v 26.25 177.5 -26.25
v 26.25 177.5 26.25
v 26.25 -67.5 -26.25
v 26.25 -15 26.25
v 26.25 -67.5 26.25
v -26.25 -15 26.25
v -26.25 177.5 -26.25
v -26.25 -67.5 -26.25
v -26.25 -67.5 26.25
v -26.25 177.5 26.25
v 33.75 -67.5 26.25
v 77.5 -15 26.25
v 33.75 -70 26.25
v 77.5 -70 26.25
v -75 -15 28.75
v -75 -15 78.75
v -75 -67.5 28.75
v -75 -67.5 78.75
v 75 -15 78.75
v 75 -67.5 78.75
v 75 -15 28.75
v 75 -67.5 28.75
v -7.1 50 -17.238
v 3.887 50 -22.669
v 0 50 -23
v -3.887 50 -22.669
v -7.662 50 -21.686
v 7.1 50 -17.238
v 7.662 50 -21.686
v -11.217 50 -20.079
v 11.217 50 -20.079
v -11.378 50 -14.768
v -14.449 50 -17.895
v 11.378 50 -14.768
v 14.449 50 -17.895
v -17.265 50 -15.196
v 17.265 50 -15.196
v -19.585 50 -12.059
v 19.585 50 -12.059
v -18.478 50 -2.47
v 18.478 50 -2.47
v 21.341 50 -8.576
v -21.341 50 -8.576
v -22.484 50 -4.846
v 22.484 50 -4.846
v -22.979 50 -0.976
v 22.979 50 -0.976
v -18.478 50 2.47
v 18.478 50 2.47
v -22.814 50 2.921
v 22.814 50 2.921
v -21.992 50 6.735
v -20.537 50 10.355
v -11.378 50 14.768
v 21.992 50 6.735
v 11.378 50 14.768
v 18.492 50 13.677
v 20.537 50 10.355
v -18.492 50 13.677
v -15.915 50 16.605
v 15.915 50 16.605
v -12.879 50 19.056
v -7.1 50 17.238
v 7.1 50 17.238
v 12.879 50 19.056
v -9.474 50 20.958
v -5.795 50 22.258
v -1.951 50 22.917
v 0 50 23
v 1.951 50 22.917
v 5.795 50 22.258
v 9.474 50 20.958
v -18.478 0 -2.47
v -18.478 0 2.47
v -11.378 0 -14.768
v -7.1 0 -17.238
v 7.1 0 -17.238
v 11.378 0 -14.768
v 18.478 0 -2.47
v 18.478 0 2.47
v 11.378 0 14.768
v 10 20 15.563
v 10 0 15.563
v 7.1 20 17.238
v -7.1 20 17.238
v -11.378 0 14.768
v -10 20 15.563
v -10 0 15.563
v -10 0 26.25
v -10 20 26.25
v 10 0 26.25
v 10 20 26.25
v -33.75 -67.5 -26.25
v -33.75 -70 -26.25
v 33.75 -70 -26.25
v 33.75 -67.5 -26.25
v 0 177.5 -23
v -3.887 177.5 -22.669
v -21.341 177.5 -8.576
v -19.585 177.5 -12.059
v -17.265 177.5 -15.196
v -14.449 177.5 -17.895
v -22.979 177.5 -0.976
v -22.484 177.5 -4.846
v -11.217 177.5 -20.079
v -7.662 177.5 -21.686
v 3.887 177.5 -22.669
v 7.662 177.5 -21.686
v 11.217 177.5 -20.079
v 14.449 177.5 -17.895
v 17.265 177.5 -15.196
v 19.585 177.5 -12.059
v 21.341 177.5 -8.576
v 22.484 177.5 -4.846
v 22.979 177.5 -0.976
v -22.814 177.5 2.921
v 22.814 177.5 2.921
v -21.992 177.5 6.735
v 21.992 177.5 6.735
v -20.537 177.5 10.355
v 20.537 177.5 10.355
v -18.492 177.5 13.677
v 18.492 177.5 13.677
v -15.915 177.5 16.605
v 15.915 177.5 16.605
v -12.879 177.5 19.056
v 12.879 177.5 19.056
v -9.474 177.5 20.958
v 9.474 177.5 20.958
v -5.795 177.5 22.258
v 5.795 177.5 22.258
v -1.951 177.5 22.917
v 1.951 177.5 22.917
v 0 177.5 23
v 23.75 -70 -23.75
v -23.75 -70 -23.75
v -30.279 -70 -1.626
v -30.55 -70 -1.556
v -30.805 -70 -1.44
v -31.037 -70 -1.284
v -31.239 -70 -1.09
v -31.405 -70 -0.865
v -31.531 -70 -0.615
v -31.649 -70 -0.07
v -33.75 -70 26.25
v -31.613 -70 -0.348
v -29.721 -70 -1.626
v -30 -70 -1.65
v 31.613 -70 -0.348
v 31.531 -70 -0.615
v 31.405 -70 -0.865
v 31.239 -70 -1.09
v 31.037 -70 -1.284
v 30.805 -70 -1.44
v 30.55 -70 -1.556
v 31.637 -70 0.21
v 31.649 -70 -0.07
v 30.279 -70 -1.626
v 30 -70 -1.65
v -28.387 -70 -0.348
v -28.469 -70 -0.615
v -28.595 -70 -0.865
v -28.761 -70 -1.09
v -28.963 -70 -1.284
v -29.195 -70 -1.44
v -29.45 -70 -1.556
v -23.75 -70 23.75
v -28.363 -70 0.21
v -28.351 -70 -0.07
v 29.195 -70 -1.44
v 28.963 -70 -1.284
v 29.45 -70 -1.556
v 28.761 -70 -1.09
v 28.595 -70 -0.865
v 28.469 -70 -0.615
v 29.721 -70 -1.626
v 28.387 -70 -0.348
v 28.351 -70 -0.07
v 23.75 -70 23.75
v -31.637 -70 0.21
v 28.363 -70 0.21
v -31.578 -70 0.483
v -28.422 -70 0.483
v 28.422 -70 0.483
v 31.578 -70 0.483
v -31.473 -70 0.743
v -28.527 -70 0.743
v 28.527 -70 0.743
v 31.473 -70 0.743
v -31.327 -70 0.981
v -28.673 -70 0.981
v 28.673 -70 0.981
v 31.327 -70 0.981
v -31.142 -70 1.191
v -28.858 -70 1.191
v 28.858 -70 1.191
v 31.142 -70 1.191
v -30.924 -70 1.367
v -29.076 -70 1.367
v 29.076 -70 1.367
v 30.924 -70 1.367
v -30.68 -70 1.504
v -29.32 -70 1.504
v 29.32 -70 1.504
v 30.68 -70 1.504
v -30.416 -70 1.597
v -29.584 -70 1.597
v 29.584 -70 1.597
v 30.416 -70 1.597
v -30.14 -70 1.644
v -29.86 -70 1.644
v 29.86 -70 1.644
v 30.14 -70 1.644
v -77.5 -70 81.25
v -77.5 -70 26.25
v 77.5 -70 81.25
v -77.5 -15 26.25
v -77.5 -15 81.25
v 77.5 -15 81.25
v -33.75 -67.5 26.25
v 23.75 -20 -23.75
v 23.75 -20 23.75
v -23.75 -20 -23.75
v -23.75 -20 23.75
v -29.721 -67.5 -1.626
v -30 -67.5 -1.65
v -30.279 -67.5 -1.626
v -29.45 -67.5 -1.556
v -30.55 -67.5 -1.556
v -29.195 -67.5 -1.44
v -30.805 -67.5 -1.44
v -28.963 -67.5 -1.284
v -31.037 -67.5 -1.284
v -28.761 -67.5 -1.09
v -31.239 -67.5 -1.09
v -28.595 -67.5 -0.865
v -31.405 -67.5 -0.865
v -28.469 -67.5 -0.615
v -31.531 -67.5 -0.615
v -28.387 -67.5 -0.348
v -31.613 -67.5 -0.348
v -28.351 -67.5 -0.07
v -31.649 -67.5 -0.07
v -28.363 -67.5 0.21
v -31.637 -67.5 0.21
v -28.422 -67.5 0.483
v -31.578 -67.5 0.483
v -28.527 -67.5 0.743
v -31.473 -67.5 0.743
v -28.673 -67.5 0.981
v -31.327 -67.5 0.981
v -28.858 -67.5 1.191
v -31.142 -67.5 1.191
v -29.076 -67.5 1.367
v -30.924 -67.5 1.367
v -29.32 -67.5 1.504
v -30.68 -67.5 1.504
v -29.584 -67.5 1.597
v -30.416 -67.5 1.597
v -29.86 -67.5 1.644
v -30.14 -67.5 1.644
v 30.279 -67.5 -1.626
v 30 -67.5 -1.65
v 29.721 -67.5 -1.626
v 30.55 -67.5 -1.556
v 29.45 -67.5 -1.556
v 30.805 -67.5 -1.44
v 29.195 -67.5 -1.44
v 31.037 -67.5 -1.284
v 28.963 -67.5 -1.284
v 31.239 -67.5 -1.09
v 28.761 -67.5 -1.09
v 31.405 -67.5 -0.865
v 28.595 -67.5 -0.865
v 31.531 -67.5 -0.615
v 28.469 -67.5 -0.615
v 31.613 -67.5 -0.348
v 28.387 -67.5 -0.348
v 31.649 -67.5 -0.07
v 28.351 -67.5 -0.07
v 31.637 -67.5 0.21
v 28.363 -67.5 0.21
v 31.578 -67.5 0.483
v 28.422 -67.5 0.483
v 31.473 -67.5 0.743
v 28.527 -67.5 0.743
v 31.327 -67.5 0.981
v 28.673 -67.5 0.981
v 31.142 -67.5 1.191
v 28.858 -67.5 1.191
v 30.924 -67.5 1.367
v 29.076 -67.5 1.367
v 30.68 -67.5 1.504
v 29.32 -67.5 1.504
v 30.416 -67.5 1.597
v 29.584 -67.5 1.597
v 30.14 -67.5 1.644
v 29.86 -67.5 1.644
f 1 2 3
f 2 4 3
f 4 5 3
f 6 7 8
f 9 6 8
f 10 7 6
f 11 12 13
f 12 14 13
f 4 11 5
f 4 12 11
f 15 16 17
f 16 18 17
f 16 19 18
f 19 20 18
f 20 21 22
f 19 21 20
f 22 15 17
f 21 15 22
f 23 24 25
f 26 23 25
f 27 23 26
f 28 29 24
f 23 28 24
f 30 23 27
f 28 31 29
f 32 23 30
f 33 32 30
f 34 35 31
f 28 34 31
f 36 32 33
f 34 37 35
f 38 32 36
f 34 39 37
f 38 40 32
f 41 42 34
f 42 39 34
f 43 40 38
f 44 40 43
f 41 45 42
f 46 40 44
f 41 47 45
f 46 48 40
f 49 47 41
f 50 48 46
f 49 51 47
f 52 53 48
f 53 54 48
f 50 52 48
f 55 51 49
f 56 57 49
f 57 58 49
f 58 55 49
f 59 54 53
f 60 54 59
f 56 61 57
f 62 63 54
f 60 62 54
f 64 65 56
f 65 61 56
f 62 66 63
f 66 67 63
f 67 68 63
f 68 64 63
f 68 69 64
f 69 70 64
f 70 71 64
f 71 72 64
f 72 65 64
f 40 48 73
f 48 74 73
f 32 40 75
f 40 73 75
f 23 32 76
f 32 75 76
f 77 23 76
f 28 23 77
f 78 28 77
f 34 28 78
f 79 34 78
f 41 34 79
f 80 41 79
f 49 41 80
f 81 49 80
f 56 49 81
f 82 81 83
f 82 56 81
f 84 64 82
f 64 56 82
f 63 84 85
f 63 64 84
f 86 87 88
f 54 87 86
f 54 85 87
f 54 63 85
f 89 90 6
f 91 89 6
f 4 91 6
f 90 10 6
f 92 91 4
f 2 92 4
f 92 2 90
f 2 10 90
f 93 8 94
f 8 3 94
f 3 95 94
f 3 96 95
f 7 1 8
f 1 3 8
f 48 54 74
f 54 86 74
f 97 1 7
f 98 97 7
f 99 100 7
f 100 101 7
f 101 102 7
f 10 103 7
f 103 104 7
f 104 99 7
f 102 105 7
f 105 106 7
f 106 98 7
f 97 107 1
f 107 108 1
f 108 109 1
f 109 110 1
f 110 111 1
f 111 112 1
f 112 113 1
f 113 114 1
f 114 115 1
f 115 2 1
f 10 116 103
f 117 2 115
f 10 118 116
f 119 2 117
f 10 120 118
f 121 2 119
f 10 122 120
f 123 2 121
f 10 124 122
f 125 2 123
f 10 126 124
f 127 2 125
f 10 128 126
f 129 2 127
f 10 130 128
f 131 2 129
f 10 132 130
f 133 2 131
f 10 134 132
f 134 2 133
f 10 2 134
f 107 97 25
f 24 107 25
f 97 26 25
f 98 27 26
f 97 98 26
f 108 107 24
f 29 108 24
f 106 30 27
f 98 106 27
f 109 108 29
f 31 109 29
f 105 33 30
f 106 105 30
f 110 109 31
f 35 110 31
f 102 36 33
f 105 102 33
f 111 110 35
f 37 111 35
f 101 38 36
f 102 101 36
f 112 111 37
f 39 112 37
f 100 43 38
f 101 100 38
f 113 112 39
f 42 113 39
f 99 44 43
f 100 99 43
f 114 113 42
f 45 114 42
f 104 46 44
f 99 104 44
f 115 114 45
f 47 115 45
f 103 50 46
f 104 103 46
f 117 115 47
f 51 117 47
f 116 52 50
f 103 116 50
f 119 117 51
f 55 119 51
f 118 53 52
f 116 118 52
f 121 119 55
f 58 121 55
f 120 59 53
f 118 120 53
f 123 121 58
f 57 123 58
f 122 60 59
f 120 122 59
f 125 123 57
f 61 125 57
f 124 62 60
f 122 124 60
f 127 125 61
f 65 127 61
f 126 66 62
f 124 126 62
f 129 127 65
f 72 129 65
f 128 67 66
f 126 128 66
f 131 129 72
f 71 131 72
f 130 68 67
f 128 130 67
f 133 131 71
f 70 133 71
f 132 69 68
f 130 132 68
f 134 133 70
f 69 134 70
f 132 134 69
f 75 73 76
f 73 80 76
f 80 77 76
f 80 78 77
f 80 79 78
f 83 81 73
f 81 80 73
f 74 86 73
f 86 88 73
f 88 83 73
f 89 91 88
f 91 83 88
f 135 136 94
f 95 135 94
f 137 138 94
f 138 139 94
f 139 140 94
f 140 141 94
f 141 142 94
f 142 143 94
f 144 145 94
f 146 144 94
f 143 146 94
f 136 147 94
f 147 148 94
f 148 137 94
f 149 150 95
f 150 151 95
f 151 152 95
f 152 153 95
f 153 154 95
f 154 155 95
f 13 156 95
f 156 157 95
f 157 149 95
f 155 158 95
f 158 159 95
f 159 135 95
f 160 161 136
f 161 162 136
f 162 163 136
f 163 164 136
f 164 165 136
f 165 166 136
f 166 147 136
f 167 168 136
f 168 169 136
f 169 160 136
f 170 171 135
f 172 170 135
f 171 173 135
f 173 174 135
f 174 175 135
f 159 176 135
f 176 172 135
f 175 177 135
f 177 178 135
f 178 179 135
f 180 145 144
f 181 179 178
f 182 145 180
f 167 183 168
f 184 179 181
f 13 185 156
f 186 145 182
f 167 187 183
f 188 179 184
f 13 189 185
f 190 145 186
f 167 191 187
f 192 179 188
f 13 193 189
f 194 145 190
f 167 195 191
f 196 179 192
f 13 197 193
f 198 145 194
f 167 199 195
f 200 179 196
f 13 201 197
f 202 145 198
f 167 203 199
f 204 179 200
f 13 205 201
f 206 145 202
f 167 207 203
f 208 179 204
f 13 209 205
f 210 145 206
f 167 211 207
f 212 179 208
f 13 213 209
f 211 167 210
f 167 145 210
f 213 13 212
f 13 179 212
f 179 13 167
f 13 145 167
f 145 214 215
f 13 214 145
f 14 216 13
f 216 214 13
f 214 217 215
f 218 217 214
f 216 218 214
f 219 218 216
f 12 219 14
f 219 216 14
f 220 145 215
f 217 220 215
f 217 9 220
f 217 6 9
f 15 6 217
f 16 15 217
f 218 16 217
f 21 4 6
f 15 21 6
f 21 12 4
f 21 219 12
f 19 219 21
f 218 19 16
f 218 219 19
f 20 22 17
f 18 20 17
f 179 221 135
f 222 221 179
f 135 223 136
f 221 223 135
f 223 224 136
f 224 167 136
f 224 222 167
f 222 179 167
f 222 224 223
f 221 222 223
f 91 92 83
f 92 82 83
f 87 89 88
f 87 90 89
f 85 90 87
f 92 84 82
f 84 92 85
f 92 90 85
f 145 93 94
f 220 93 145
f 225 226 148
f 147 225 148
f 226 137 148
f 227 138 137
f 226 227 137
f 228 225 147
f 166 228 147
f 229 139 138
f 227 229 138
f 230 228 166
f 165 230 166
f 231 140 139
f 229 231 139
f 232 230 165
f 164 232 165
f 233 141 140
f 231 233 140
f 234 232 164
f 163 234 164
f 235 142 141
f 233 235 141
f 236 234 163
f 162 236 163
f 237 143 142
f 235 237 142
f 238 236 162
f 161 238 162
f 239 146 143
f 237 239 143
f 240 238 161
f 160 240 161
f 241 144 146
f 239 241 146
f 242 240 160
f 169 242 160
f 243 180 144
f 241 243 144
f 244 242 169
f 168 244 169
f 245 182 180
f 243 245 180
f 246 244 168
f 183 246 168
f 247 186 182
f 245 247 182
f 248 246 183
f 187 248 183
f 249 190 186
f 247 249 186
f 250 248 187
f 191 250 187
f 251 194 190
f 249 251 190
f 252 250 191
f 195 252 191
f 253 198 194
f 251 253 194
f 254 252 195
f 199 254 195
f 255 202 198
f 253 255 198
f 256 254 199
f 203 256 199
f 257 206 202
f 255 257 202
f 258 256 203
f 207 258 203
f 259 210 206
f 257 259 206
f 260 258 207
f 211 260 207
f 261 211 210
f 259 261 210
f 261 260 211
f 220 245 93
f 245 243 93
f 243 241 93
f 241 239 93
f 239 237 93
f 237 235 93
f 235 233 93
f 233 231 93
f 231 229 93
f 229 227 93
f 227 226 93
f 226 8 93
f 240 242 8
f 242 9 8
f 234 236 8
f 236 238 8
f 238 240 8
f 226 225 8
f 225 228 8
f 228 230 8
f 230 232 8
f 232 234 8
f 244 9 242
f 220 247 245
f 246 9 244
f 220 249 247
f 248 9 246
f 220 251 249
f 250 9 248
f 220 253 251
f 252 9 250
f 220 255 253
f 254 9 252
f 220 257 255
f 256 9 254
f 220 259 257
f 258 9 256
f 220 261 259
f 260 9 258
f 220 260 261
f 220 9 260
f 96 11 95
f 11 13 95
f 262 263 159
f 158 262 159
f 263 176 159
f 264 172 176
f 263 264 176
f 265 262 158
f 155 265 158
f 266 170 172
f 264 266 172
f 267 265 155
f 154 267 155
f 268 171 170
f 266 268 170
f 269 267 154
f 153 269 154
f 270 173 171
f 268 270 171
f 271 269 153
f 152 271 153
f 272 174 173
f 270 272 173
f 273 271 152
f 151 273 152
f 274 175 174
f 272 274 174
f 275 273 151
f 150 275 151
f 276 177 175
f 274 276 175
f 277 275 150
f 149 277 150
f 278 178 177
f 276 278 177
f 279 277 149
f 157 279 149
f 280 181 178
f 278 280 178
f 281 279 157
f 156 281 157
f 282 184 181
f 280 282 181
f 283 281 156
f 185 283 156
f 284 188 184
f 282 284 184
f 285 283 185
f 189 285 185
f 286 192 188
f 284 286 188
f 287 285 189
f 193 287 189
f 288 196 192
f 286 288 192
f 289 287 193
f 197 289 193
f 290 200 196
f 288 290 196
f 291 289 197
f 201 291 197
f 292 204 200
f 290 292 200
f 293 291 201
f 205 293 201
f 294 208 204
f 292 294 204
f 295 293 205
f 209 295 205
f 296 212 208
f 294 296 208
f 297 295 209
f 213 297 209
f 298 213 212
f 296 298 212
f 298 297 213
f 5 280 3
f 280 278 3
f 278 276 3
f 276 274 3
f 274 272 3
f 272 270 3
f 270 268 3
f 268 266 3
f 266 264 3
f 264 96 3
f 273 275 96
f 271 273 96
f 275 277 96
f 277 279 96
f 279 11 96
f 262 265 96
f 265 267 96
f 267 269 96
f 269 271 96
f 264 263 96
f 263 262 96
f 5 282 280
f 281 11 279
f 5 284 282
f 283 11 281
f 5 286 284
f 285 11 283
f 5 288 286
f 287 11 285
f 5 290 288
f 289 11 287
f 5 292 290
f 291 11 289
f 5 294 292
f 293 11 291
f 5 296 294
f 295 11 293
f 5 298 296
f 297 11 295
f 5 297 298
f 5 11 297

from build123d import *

# Parameters (mm, degrees)
BOSS_EXTRUDE1_DEPTH = 50
BOSS_EXTRUDE2_START = 50
SKETCH2_3_R         = 23
BOSS_EXTRUDE2_DEPTH = 127.5
BOSS_EXTRUDE3_DEPTH = 177.5
SKETCH3_W           = 52.5
SKETCH3_H           = 52.5
BOSS_EXTRUDE4_DEPTH = 70
SKETCH4_W           = 150
SKETCH4_H           = 50
BOSS_EXTRUDE5_DEPTH = 2.5
SKETCH4_4_W         = 155
SKETCH4_4_H         = 55
SKETCH4_4_W_2       = 150
SKETCH4_4_H_2       = 50
BOSS_EXTRUDE6_DEPTH = 55
SKETCH5_W           = 47.5
SKETCH5_H           = 47.5
CUT_EXTRUDE4_DEPTH  = 50
SKETCH6_W           = 20
SKETCH6_H           = 20
CUT_EXTRUDE5_DEPTH  = 20
SKETCH7_W           = 7.5
SKETCH7_H           = 52.5
SKETCH7_R           = 1.65
BOSS_EXTRUDE7_DEPTH = 2.5


with BuildPart() as part:
    # Sketch2 → Boss-Extrude1 (new body)
    with BuildSketch(Plane(origin=(0, 0, 0), x_dir=(1, 0, 0), z_dir=(0, 1, 0))):
        with BuildLine():
            ThreePointArc((-26.25, -11.459990061), (-20.253319138, -20.253319138), (-11.459990061, -26.25))
            Line((-11.459990061, -26.25), (11.459990061, -26.25))
            ThreePointArc((11.459990061, -26.25), (20.253319138, -20.253319138), (26.25, -11.459990061))
            Line((26.25, -11.459990061), (26.25, 11.459990061))
            ThreePointArc((26.25, 11.459990061), (20.253319138, 20.253319138), (11.459990061, 26.25))
            Line((11.459990061, 26.25), (-11.459990061, 26.25))
            ThreePointArc((-11.459990061, 26.25), (-20.253319138, 20.253319138), (-26.25, 11.459990061))
            Line((-26.25, 11.459990061), (-26.25, -11.459990061))
        make_face()
        Polygon((-7.1, 17.237560734), (7.1, 17.237560734), (11.378165495, 14.767560734), (18.478165495, 2.47), (18.478165495, -2.47), (11.378165495, -14.767560734), (7.1, -17.237560734), (-7.1, -17.237560734), (-11.378165495, -14.767560734), (-18.478165495, -2.47), (-18.478165495, 2.47), (-11.378165495, 14.767560734), align=None, mode=Mode.SUBTRACT)
    extrude(amount=BOSS_EXTRUDE1_DEPTH)

    # Sketch2<3> → Boss-Extrude2 (add)
    with BuildSketch(Plane(origin=(0, 0, 0), x_dir=(1, 0, 0), z_dir=(0, 1, 0)).offset(BOSS_EXTRUDE2_START)):
        with BuildLine():
            ThreePointArc((-26.25, -11.459990061), (-20.253319138, -20.253319138), (-11.459990061, -26.25))
            Line((-11.459990061, -26.25), (11.459990061, -26.25))
            ThreePointArc((11.459990061, -26.25), (20.253319138, -20.253319138), (26.25, -11.459990061))
            Line((26.25, -11.459990061), (26.25, 11.459990061))
            ThreePointArc((26.25, 11.459990061), (20.253319138, 20.253319138), (11.459990061, 26.25))
            Line((11.459990061, 26.25), (-11.459990061, 26.25))
            ThreePointArc((-11.459990061, 26.25), (-20.253319138, 20.253319138), (-26.25, 11.459990061))
            Line((-26.25, 11.459990061), (-26.25, -11.459990061))
        make_face()
        with Locations(Location((0, 0, 0), (0, 0, 270))):
            Circle(SKETCH2_3_R, mode=Mode.SUBTRACT)
    extrude(amount=BOSS_EXTRUDE2_DEPTH)

    # Sketch2<4> → Boss-Extrude3 (add)
    with BuildSketch(Plane(origin=(0, 0, 0), x_dir=(1, 0, 0), z_dir=(0, 1, 0))):
        with BuildLine():
            Line((-26.25, 26.25), (-26.25, 11.459990061))
            ThreePointArc((-26.25, 11.459990061), (-20.253319138, 20.253319138), (-11.459990061, 26.25))
            Line((-11.459990061, 26.25), (-26.25, 26.25))
        make_face()
        with BuildLine():
            ThreePointArc((11.459990061, 26.25), (20.253319138, 20.253319138), (26.25, 11.459990061))
            Line((26.25, 11.459990061), (26.25, 26.25))
            Line((26.25, 26.25), (11.459990061, 26.25))
        make_face()
        with BuildLine():
            ThreePointArc((26.25, -11.459990061), (20.253319138, -20.253319138), (11.459990061, -26.25))
            Line((11.459990061, -26.25), (26.25, -26.25))
            Line((26.25, -26.25), (26.25, -11.459990061))
        make_face()
        with BuildLine():
            Line((-26.25, -11.459990061), (-26.25, -26.25))
            Line((-26.25, -26.25), (-11.459990061, -26.25))
            ThreePointArc((-11.459990061, -26.25), (-20.253319138, -20.253319138), (-26.25, -11.459990061))
        make_face()
    extrude(amount=BOSS_EXTRUDE3_DEPTH)

    # Sketch3 → Boss-Extrude4 (add)
    with BuildSketch(Plane.XZ):
        Rectangle(SKETCH3_W, SKETCH3_H)
    extrude(amount=BOSS_EXTRUDE4_DEPTH)



with BuildPart() as body_2:
    # Sketch4 → Boss-Extrude5 (new body)
    with BuildSketch(Plane(origin=(0, -70, 0), x_dir=(-1, 0, 0), z_dir=(0, -1, 0))):
        with Locations((0, -53.75)):
            Rectangle(SKETCH4_W, SKETCH4_H)
    extrude(amount=-BOSS_EXTRUDE5_DEPTH)


with BuildPart() as part_1:
    add(part.part)

    add(body_2.part)  # Boss-Extrude6 merges body 2
    # Sketch4<4> → Boss-Extrude6 (add)
    with BuildSketch(Plane(origin=(0, -70, 0), x_dir=(-1, 0, 0), z_dir=(0, -1, 0))):
        with Locations((0, -53.75)):
            Rectangle(SKETCH4_4_W, SKETCH4_4_H)
        with Locations((0, -53.75)):
            Rectangle(SKETCH4_4_W_2, SKETCH4_4_H_2, mode=Mode.SUBTRACT)
    extrude(amount=-BOSS_EXTRUDE6_DEPTH)

    # Sketch5 → Cut-Extrude4 (cut)
    with BuildSketch(Plane.XZ.offset(70)):
        Rectangle(SKETCH5_W, SKETCH5_H)
    extrude(amount=-CUT_EXTRUDE4_DEPTH, mode=Mode.SUBTRACT)

    # Sketch6 → Cut-Extrude5 (cut)
    with BuildSketch(Plane.XY.offset(26.25)):
        with Locations((0, 10)):
            Rectangle(SKETCH6_W, SKETCH6_H)
    extrude(amount=-CUT_EXTRUDE5_DEPTH, mode=Mode.SUBTRACT)

    # Sketch7 → Boss-Extrude7 (add)
    # profile 1 of 2: a face of its own
    with BuildSketch(Plane.XZ.offset(70)):
        with Locations((-30, 0)):
            Rectangle(SKETCH7_W, SKETCH7_H)
        with Locations(Location((-30, 0, 0), (0, 0, 270))):
            Circle(SKETCH7_R, mode=Mode.SUBTRACT)
    # profile 2 of 2: a face of its own
    with BuildSketch(Plane.XZ.offset(70)):
        with Locations((30, 0)):
            Rectangle(SKETCH7_W, SKETCH7_H)
        with Locations(Location((30, 0, 0), (0, 0, 270))):
            Circle(SKETCH7_R, mode=Mode.SUBTRACT)
    extrude(amount=-BOSS_EXTRUDE7_DEPTH)


solid = part_1.part
